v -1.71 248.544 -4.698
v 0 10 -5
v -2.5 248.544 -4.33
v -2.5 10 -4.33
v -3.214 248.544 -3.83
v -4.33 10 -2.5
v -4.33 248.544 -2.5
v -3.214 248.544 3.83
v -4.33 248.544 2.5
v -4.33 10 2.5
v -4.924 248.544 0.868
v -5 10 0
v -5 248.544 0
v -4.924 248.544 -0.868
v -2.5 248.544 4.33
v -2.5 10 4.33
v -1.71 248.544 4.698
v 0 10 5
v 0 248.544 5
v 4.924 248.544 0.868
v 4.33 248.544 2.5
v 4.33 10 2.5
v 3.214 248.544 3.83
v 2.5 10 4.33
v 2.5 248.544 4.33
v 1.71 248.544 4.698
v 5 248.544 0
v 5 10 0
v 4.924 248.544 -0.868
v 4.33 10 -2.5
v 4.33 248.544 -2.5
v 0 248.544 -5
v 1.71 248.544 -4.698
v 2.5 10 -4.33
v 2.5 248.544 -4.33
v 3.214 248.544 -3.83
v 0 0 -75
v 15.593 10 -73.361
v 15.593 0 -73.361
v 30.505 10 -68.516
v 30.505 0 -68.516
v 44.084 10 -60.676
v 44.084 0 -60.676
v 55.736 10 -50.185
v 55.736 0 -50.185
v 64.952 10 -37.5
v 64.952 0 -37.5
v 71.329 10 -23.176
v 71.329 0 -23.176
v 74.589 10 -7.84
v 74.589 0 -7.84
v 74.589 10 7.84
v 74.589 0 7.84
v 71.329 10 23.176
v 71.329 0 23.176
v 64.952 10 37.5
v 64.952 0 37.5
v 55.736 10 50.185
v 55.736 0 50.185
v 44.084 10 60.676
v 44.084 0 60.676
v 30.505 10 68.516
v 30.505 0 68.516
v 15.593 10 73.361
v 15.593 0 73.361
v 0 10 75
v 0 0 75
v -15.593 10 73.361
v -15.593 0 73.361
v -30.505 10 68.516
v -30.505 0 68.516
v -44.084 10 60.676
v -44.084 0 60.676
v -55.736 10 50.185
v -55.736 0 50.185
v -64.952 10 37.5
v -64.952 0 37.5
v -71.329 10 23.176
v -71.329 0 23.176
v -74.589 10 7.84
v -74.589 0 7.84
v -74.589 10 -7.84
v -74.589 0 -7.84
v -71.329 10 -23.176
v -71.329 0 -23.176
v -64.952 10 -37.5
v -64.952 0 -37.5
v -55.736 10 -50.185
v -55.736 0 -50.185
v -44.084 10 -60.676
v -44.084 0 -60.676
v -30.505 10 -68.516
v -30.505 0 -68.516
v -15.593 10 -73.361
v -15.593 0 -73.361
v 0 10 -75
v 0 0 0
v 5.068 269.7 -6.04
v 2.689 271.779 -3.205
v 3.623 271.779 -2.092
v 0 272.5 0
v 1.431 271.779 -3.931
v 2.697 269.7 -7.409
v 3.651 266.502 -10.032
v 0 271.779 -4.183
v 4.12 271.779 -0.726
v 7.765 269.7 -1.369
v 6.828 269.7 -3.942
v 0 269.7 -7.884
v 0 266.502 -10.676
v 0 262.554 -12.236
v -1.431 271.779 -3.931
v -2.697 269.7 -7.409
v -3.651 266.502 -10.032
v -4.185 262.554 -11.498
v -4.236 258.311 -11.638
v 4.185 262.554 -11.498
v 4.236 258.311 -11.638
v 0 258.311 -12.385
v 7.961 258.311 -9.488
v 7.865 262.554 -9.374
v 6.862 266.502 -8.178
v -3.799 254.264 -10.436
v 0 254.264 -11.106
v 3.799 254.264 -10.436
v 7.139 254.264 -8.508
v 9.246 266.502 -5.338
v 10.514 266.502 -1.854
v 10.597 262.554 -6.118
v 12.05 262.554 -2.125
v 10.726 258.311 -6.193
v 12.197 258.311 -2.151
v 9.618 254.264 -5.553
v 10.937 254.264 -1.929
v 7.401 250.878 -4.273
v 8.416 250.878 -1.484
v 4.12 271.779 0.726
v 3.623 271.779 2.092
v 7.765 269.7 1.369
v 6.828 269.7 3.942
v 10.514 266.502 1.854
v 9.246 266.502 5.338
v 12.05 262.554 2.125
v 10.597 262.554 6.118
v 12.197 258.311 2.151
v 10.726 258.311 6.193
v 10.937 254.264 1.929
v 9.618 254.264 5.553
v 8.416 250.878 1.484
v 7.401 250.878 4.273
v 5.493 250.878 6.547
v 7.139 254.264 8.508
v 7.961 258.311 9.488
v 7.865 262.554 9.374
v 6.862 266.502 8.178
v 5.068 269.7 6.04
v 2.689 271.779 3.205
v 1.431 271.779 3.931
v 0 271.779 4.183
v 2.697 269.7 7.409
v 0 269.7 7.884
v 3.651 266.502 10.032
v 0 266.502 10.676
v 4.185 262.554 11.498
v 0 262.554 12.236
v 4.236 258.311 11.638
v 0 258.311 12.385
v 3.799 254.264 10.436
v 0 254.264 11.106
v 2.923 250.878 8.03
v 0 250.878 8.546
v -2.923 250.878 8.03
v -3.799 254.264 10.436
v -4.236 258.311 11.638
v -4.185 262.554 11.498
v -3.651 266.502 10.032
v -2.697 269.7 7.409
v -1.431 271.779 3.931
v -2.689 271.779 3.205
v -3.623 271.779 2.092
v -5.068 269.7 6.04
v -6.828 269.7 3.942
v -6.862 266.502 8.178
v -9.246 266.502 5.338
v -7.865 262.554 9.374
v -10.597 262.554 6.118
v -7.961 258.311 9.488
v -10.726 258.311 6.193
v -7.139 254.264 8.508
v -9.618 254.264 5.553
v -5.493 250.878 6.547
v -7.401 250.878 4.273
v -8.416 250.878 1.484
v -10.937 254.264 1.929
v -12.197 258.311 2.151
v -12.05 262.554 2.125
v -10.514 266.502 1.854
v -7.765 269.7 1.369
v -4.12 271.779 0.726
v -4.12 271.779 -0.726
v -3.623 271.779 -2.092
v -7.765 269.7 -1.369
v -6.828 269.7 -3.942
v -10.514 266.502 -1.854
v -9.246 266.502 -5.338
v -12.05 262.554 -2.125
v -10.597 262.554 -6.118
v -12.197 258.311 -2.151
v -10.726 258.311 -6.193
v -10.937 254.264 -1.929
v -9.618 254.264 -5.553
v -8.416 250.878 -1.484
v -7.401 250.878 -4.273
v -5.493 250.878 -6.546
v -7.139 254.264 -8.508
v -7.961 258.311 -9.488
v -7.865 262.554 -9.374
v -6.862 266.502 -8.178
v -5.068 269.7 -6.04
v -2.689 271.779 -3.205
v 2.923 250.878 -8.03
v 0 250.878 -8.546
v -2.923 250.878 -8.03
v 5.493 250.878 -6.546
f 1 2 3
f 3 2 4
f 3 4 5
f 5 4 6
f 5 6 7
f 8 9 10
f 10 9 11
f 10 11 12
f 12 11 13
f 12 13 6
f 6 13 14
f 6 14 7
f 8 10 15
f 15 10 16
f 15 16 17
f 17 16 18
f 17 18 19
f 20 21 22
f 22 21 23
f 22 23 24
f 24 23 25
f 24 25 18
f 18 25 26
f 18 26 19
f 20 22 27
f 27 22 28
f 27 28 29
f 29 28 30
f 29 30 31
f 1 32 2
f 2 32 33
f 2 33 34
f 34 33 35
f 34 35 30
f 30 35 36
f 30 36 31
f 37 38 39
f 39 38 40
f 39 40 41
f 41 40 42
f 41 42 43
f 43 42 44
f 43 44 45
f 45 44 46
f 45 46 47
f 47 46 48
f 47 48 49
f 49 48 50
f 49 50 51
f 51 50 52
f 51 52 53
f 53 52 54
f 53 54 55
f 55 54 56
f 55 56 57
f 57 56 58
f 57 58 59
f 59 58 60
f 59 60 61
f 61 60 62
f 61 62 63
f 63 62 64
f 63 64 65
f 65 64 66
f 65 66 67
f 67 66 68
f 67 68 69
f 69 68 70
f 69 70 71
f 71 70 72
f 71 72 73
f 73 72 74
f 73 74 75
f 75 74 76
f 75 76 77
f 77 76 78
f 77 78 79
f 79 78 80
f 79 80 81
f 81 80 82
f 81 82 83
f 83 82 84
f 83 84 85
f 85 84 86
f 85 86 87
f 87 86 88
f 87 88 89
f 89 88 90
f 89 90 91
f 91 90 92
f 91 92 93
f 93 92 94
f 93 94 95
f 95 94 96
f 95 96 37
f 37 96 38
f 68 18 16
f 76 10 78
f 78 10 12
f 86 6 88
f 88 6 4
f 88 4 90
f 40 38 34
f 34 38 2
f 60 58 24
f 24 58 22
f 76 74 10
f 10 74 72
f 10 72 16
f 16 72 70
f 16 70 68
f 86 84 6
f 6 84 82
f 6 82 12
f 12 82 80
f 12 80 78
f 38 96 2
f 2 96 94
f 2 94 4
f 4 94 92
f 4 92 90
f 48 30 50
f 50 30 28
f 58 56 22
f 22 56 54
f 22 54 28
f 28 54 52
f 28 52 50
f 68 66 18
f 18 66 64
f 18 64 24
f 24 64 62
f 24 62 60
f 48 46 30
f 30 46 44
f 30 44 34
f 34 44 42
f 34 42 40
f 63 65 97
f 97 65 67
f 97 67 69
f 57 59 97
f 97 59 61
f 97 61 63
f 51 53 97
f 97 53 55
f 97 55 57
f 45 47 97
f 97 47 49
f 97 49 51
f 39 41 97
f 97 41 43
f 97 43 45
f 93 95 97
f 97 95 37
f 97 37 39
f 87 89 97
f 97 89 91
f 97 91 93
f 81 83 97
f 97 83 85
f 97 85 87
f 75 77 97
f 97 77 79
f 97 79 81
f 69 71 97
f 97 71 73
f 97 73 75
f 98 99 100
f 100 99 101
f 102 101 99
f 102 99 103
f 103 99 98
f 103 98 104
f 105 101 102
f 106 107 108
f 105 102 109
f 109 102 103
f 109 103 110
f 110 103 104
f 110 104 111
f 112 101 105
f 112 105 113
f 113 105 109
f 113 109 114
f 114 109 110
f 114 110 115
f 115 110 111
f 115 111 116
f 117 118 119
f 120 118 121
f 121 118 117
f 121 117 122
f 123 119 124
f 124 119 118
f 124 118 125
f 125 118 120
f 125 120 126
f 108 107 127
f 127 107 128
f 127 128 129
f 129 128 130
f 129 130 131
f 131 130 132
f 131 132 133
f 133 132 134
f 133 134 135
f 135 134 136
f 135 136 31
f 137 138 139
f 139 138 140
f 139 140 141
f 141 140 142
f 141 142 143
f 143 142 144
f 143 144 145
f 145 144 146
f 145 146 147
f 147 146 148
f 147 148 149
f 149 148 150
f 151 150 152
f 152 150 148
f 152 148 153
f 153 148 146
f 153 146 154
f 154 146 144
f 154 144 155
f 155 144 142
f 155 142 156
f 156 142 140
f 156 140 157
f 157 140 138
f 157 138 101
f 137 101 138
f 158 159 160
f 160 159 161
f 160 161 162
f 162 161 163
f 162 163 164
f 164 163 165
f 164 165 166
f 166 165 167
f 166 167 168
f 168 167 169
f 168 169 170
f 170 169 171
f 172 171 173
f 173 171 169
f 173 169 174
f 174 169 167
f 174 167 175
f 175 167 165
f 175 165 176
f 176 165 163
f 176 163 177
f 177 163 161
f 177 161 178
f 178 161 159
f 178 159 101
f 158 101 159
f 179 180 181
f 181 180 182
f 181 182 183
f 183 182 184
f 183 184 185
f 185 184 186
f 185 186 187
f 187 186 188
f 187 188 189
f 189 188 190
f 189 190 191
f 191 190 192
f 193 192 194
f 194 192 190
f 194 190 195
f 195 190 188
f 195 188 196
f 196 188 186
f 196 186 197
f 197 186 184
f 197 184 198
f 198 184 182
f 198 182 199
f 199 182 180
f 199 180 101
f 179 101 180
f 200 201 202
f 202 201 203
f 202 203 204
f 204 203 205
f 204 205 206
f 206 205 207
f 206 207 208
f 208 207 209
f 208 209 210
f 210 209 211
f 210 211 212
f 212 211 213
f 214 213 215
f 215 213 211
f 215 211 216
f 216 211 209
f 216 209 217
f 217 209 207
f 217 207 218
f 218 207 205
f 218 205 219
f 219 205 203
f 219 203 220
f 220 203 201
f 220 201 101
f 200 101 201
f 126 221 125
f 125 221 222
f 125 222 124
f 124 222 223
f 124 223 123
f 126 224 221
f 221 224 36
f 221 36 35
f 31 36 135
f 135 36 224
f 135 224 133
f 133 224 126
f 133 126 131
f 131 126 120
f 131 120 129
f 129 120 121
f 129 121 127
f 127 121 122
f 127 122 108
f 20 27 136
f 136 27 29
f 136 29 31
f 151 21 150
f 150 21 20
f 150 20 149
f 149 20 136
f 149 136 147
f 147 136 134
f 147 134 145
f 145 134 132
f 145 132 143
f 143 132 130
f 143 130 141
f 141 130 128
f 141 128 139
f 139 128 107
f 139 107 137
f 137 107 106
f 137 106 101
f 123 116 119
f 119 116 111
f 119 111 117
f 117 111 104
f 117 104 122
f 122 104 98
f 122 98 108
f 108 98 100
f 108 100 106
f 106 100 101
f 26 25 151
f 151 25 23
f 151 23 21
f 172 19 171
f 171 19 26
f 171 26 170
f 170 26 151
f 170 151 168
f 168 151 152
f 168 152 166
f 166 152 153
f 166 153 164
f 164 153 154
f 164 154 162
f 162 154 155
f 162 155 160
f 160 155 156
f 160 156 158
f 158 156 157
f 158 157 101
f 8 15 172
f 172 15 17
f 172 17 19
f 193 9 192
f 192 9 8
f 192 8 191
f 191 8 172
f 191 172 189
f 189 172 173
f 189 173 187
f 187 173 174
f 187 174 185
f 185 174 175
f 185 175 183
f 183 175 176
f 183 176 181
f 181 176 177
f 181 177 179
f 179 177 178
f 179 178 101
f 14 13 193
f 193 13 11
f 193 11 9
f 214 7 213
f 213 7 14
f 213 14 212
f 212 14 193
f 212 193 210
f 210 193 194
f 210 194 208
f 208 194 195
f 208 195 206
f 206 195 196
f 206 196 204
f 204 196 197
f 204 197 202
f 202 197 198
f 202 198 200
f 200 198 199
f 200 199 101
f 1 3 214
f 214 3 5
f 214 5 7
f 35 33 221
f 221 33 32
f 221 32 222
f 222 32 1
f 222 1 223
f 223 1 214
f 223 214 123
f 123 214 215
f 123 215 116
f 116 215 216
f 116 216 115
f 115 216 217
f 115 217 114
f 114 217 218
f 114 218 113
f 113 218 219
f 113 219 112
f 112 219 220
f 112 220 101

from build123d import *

# Parameters (mm, degrees)
ESBO_O1_R                = 75
RESSALTO_EXTRUS_O1_DEPTH = 10
ESBO_O2_R                = 5
RESSALTO_EXTRUS_O2_DEPTH = 250


with BuildPart() as part:
    # Esboço1 → Ressalto-extrusão1 (new body)
    with BuildSketch(Plane(origin=(0, 0, 0), x_dir=(1, 0, 0), z_dir=(0, 1, 0))):
        Circle(ESBO_O1_R)
    extrude(amount=RESSALTO_EXTRUS_O1_DEPTH)

    # Esboço2 → Ressalto-extrusão2 (add)
    with BuildSketch(Plane(origin=(0, 10, 0), x_dir=(1, 0, 0), z_dir=(0, 1, 0))):
        Circle(ESBO_O2_R)
    extrude(amount=RESSALTO_EXTRUS_O2_DEPTH)

    # Esboço4 → Revolução1 (revolve)
    with BuildSketch(Plane(origin=(0, 0, 0), x_dir=(0, 0, -1), z_dir=(1, 0, 0))):
        with BuildLine():
            Line((0, 272.5), (0, 247.5))
            ThreePointArc((0, 247.5), (12.5, 260), (0, 272.5))
        make_face()
    revolve(axis=Axis((0, 272.5, 0), (0, -1, 0)))


solid = part.part
